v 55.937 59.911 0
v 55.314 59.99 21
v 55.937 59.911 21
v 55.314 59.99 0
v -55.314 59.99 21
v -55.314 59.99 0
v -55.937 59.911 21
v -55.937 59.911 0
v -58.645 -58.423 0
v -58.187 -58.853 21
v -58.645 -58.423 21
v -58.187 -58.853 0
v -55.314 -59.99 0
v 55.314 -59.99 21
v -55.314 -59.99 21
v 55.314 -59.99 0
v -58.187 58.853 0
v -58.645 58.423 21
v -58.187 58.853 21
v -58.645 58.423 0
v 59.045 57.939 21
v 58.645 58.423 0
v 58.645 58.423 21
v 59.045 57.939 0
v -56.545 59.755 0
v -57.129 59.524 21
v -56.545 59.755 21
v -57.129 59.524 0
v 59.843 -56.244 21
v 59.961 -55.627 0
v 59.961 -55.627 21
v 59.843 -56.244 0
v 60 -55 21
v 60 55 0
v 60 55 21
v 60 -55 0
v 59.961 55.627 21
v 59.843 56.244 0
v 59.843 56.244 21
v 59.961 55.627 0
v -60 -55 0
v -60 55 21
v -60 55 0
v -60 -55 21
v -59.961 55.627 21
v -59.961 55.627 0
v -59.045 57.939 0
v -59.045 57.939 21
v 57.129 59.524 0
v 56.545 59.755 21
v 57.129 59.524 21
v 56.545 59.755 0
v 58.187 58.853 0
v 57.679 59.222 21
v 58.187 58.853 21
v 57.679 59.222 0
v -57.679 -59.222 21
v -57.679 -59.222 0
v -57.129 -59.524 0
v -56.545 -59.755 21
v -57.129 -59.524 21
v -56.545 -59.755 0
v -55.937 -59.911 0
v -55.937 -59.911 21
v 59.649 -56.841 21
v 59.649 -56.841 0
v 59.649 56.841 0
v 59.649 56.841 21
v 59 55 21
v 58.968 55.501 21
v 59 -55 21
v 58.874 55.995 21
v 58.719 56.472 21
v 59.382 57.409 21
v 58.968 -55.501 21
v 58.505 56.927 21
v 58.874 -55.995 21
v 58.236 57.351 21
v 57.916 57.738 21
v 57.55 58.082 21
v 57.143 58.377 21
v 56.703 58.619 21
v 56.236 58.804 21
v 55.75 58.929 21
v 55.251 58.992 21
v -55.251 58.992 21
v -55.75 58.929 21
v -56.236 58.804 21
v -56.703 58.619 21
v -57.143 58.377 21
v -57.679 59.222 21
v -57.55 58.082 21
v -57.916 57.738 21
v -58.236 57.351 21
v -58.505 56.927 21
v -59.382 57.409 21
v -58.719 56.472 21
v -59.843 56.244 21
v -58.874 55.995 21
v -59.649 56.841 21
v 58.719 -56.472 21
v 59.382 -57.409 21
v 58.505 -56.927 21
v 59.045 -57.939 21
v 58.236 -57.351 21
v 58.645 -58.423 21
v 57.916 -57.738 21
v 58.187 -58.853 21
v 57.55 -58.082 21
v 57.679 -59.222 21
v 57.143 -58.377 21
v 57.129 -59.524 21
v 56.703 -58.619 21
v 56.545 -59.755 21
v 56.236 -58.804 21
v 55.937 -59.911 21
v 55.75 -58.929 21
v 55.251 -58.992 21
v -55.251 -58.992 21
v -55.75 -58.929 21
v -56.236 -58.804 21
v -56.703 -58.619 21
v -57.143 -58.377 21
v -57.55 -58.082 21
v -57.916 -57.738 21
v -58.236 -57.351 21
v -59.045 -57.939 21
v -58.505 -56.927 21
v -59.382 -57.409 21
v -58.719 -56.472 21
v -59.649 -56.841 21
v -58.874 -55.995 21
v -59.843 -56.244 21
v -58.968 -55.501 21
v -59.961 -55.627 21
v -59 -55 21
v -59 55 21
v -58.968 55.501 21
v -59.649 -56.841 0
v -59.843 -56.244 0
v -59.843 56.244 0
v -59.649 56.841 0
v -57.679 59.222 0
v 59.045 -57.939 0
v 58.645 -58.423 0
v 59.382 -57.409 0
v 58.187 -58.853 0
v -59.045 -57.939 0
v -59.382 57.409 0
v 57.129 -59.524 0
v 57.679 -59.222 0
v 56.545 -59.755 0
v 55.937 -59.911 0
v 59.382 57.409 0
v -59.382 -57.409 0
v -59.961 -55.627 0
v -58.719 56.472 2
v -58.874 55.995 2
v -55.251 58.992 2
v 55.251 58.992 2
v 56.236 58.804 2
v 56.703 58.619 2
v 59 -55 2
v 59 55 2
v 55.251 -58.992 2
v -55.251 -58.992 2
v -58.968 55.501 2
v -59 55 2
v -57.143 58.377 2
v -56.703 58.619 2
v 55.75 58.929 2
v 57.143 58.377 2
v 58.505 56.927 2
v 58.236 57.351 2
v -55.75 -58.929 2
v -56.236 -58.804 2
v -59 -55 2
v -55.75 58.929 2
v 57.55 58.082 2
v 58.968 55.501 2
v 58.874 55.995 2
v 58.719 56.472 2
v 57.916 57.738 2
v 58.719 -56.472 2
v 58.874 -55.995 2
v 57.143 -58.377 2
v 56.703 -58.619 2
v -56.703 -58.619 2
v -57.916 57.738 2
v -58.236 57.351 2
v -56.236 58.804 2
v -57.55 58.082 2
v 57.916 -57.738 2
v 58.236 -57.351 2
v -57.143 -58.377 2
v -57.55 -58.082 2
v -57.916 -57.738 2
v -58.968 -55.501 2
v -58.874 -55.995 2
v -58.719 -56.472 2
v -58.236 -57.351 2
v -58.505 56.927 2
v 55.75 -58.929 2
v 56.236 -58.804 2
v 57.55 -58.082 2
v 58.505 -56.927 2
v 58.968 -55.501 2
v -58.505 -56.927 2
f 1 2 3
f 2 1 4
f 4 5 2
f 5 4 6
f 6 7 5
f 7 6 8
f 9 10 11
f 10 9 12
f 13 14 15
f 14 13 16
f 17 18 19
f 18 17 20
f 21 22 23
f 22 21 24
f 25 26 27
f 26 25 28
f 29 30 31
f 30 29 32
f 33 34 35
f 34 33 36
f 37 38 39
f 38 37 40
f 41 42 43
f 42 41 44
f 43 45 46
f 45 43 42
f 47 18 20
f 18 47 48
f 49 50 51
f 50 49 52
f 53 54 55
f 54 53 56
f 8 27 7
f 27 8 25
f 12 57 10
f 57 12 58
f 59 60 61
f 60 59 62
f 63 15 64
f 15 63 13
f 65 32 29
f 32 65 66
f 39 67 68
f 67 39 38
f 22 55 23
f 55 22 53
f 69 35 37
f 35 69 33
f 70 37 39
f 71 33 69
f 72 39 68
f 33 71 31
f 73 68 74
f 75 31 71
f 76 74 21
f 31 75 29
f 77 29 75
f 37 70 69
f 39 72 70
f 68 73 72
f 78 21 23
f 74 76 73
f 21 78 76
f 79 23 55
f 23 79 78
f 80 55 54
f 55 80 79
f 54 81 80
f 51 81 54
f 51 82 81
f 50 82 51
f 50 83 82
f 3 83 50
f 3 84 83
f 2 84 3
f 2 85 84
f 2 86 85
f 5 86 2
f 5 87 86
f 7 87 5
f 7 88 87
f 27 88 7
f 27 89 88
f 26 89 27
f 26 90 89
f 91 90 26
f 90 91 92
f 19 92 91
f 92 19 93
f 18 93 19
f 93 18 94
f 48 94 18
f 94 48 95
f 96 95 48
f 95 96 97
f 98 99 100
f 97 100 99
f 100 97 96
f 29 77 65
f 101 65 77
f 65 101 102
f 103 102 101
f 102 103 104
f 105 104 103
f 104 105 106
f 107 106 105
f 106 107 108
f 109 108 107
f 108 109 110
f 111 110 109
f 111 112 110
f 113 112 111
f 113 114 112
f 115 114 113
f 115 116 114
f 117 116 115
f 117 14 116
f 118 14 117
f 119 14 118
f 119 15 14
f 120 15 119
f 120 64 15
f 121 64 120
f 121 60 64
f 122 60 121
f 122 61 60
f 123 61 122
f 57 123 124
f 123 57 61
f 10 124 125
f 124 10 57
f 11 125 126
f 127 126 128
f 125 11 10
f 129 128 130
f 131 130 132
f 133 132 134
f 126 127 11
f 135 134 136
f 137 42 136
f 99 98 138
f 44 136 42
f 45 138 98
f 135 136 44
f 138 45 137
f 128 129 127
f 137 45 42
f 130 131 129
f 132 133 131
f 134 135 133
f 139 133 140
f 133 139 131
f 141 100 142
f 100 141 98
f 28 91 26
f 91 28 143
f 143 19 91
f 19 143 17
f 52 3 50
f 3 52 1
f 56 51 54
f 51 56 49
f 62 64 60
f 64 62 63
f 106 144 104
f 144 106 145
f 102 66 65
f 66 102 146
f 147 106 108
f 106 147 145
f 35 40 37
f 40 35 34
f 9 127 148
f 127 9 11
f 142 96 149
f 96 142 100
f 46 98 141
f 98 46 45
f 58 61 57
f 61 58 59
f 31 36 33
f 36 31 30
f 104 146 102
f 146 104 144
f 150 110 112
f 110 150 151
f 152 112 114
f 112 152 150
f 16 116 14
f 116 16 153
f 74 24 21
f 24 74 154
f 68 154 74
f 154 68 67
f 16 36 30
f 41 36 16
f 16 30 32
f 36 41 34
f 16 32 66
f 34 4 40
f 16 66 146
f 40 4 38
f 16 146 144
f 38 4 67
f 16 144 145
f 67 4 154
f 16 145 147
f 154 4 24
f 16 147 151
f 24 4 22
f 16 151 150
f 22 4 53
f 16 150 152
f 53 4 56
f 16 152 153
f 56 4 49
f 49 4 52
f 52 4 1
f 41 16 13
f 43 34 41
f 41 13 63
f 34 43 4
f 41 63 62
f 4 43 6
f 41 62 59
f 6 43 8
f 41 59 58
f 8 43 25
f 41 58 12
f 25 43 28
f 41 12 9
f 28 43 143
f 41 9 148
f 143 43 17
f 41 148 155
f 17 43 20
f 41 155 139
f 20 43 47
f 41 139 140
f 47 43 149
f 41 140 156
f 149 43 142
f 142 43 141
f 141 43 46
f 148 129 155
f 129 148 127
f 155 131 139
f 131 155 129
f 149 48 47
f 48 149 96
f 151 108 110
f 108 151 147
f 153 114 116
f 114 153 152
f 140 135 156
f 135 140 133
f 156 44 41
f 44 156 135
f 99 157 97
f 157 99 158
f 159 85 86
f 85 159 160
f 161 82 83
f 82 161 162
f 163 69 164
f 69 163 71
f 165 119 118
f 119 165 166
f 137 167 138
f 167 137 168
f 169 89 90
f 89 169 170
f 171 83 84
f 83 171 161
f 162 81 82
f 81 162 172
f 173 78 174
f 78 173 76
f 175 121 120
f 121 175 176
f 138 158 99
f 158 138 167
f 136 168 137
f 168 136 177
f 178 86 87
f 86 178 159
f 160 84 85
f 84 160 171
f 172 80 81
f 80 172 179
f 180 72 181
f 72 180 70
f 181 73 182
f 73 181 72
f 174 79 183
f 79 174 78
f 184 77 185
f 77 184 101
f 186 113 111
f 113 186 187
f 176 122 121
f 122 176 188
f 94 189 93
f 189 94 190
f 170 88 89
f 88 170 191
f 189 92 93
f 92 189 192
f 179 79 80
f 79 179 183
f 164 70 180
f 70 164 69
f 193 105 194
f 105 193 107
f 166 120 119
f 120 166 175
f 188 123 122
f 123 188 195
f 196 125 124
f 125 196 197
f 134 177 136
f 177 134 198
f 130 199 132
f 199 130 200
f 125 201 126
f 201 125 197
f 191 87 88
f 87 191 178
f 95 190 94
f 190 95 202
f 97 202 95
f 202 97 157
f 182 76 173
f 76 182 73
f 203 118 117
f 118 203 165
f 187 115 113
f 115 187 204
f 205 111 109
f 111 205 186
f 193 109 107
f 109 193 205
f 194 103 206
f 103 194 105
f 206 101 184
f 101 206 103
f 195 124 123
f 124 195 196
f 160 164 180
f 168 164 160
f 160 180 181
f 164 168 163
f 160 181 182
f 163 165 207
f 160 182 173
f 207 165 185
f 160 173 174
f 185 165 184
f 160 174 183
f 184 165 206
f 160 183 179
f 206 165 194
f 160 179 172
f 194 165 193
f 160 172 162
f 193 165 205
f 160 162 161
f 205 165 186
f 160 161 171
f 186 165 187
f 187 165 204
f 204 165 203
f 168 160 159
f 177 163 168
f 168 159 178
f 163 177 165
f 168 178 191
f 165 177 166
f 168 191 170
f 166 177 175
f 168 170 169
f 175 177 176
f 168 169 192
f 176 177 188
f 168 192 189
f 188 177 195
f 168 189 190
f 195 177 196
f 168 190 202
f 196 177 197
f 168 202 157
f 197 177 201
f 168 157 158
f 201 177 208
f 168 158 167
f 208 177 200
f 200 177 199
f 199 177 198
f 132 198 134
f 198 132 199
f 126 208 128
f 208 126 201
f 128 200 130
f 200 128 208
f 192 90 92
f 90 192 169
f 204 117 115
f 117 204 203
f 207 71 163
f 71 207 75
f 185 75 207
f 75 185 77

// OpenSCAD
$fn = 50;


difference() {
	union() {
		hull() {
			translate(v = [-55.0000000000, 55.0000000000, 0]) {
				cylinder(h = 21, r = 5);
			}
			translate(v = [55.0000000000, 55.0000000000, 0]) {
				cylinder(h = 21, r = 5);
			}
			translate(v = [-55.0000000000, -55.0000000000, 0]) {
				cylinder(h = 21, r = 5);
			}
			translate(v = [55.0000000000, -55.0000000000, 0]) {
				cylinder(h = 21, r = 5);
			}
		}
	}
	union() {
		translate(v = [0, 0, 2]) {
			hull() {
				translate(v = [-55.0000000000, 55.0000000000, 0]) {
					cylinder(h = 19, r = 4);
				}
				translate(v = [55.0000000000, 55.0000000000, 0]) {
					cylinder(h = 19, r = 4);
				}
				translate(v = [-55.0000000000, -55.0000000000, 0]) {
					cylinder(h = 19, r = 4);
				}
				translate(v = [55.0000000000, -55.0000000000, 0]) {
					cylinder(h = 19, r = 4);
				}
			}
		}
	}
}
